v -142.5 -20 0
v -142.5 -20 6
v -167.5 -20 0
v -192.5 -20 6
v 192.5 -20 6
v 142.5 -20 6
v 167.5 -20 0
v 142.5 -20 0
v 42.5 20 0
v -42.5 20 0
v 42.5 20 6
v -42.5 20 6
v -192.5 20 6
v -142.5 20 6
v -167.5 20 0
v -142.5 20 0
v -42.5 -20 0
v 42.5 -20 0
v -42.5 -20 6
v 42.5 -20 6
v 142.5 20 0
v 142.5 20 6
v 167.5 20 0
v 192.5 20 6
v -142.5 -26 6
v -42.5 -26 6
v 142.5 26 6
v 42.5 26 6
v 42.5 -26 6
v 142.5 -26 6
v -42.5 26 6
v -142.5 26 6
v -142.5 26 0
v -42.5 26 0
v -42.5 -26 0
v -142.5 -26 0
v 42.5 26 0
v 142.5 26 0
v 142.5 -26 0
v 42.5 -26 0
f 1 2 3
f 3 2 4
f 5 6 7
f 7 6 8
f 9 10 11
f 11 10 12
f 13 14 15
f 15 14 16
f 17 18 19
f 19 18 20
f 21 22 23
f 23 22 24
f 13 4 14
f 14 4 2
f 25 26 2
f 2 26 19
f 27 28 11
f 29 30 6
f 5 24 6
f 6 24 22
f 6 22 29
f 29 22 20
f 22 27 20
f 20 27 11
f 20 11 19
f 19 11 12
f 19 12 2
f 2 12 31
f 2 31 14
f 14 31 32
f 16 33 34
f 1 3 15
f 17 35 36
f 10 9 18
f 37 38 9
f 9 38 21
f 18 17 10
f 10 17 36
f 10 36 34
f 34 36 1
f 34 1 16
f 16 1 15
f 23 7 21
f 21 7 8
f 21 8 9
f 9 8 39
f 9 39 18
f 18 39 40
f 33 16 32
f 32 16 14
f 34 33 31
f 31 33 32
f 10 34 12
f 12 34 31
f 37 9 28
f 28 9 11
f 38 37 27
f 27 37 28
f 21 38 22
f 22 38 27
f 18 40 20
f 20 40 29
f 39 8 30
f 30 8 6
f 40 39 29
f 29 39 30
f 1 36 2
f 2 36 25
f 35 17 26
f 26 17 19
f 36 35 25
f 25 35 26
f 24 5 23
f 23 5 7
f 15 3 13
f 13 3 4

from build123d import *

# Parameters (mm, degrees)
ESQUISSE1_W             = 385
ESQUISSE1_H             = 40
BOSS_EXTRU_1_DEPTH      = 6
ESQUISSE3_W             = 100
ESQUISSE3_H             = 6
BOSS_EXTRU_2_DEPTH      = 6
ENL_V_MAT_EXTRU_1_DEPTH = 47


with BuildPart() as part:
    # Esquisse1 → Boss.-Extru.1 (new body)
    with BuildSketch(Plane.XY):
        Rectangle(ESQUISSE1_W, ESQUISSE1_H)
    extrude(amount=BOSS_EXTRU_1_DEPTH)

    # Esquisse3 → Boss.-Extru.2 (add)
    with BuildSketch(Plane.XY.offset(6)):
        with Locations((-92.5, 23)):
            Rectangle(ESQUISSE3_W, ESQUISSE3_H)
        with Locations((92.5, 23)):
            Rectangle(ESQUISSE3_W, ESQUISSE3_H)
        with Locations((92.5, -23)):
            Rectangle(ESQUISSE3_W, ESQUISSE3_H)
        with Locations((-92.5, -23)):
            Rectangle(ESQUISSE3_W, ESQUISSE3_H)
    extrude(amount=-BOSS_EXTRU_2_DEPTH)

    # Esquisse4 → Enlèv. mat.-Extru.1 (cut, through all)
    with BuildSketch(Plane(origin=(0, 20, 0), x_dir=(1, 0, 0), z_dir=(0, 1, 0))):
        Polygon((-192.5, -6), (-167.5, 0), (-192.5, 0), align=None)
        Polygon((192.5, -6), (167.5, 0), (192.5, 0), align=None)
    extrude(amount=-ENL_V_MAT_EXTRU_1_DEPTH, mode=Mode.SUBTRACT)


solid = part.part
